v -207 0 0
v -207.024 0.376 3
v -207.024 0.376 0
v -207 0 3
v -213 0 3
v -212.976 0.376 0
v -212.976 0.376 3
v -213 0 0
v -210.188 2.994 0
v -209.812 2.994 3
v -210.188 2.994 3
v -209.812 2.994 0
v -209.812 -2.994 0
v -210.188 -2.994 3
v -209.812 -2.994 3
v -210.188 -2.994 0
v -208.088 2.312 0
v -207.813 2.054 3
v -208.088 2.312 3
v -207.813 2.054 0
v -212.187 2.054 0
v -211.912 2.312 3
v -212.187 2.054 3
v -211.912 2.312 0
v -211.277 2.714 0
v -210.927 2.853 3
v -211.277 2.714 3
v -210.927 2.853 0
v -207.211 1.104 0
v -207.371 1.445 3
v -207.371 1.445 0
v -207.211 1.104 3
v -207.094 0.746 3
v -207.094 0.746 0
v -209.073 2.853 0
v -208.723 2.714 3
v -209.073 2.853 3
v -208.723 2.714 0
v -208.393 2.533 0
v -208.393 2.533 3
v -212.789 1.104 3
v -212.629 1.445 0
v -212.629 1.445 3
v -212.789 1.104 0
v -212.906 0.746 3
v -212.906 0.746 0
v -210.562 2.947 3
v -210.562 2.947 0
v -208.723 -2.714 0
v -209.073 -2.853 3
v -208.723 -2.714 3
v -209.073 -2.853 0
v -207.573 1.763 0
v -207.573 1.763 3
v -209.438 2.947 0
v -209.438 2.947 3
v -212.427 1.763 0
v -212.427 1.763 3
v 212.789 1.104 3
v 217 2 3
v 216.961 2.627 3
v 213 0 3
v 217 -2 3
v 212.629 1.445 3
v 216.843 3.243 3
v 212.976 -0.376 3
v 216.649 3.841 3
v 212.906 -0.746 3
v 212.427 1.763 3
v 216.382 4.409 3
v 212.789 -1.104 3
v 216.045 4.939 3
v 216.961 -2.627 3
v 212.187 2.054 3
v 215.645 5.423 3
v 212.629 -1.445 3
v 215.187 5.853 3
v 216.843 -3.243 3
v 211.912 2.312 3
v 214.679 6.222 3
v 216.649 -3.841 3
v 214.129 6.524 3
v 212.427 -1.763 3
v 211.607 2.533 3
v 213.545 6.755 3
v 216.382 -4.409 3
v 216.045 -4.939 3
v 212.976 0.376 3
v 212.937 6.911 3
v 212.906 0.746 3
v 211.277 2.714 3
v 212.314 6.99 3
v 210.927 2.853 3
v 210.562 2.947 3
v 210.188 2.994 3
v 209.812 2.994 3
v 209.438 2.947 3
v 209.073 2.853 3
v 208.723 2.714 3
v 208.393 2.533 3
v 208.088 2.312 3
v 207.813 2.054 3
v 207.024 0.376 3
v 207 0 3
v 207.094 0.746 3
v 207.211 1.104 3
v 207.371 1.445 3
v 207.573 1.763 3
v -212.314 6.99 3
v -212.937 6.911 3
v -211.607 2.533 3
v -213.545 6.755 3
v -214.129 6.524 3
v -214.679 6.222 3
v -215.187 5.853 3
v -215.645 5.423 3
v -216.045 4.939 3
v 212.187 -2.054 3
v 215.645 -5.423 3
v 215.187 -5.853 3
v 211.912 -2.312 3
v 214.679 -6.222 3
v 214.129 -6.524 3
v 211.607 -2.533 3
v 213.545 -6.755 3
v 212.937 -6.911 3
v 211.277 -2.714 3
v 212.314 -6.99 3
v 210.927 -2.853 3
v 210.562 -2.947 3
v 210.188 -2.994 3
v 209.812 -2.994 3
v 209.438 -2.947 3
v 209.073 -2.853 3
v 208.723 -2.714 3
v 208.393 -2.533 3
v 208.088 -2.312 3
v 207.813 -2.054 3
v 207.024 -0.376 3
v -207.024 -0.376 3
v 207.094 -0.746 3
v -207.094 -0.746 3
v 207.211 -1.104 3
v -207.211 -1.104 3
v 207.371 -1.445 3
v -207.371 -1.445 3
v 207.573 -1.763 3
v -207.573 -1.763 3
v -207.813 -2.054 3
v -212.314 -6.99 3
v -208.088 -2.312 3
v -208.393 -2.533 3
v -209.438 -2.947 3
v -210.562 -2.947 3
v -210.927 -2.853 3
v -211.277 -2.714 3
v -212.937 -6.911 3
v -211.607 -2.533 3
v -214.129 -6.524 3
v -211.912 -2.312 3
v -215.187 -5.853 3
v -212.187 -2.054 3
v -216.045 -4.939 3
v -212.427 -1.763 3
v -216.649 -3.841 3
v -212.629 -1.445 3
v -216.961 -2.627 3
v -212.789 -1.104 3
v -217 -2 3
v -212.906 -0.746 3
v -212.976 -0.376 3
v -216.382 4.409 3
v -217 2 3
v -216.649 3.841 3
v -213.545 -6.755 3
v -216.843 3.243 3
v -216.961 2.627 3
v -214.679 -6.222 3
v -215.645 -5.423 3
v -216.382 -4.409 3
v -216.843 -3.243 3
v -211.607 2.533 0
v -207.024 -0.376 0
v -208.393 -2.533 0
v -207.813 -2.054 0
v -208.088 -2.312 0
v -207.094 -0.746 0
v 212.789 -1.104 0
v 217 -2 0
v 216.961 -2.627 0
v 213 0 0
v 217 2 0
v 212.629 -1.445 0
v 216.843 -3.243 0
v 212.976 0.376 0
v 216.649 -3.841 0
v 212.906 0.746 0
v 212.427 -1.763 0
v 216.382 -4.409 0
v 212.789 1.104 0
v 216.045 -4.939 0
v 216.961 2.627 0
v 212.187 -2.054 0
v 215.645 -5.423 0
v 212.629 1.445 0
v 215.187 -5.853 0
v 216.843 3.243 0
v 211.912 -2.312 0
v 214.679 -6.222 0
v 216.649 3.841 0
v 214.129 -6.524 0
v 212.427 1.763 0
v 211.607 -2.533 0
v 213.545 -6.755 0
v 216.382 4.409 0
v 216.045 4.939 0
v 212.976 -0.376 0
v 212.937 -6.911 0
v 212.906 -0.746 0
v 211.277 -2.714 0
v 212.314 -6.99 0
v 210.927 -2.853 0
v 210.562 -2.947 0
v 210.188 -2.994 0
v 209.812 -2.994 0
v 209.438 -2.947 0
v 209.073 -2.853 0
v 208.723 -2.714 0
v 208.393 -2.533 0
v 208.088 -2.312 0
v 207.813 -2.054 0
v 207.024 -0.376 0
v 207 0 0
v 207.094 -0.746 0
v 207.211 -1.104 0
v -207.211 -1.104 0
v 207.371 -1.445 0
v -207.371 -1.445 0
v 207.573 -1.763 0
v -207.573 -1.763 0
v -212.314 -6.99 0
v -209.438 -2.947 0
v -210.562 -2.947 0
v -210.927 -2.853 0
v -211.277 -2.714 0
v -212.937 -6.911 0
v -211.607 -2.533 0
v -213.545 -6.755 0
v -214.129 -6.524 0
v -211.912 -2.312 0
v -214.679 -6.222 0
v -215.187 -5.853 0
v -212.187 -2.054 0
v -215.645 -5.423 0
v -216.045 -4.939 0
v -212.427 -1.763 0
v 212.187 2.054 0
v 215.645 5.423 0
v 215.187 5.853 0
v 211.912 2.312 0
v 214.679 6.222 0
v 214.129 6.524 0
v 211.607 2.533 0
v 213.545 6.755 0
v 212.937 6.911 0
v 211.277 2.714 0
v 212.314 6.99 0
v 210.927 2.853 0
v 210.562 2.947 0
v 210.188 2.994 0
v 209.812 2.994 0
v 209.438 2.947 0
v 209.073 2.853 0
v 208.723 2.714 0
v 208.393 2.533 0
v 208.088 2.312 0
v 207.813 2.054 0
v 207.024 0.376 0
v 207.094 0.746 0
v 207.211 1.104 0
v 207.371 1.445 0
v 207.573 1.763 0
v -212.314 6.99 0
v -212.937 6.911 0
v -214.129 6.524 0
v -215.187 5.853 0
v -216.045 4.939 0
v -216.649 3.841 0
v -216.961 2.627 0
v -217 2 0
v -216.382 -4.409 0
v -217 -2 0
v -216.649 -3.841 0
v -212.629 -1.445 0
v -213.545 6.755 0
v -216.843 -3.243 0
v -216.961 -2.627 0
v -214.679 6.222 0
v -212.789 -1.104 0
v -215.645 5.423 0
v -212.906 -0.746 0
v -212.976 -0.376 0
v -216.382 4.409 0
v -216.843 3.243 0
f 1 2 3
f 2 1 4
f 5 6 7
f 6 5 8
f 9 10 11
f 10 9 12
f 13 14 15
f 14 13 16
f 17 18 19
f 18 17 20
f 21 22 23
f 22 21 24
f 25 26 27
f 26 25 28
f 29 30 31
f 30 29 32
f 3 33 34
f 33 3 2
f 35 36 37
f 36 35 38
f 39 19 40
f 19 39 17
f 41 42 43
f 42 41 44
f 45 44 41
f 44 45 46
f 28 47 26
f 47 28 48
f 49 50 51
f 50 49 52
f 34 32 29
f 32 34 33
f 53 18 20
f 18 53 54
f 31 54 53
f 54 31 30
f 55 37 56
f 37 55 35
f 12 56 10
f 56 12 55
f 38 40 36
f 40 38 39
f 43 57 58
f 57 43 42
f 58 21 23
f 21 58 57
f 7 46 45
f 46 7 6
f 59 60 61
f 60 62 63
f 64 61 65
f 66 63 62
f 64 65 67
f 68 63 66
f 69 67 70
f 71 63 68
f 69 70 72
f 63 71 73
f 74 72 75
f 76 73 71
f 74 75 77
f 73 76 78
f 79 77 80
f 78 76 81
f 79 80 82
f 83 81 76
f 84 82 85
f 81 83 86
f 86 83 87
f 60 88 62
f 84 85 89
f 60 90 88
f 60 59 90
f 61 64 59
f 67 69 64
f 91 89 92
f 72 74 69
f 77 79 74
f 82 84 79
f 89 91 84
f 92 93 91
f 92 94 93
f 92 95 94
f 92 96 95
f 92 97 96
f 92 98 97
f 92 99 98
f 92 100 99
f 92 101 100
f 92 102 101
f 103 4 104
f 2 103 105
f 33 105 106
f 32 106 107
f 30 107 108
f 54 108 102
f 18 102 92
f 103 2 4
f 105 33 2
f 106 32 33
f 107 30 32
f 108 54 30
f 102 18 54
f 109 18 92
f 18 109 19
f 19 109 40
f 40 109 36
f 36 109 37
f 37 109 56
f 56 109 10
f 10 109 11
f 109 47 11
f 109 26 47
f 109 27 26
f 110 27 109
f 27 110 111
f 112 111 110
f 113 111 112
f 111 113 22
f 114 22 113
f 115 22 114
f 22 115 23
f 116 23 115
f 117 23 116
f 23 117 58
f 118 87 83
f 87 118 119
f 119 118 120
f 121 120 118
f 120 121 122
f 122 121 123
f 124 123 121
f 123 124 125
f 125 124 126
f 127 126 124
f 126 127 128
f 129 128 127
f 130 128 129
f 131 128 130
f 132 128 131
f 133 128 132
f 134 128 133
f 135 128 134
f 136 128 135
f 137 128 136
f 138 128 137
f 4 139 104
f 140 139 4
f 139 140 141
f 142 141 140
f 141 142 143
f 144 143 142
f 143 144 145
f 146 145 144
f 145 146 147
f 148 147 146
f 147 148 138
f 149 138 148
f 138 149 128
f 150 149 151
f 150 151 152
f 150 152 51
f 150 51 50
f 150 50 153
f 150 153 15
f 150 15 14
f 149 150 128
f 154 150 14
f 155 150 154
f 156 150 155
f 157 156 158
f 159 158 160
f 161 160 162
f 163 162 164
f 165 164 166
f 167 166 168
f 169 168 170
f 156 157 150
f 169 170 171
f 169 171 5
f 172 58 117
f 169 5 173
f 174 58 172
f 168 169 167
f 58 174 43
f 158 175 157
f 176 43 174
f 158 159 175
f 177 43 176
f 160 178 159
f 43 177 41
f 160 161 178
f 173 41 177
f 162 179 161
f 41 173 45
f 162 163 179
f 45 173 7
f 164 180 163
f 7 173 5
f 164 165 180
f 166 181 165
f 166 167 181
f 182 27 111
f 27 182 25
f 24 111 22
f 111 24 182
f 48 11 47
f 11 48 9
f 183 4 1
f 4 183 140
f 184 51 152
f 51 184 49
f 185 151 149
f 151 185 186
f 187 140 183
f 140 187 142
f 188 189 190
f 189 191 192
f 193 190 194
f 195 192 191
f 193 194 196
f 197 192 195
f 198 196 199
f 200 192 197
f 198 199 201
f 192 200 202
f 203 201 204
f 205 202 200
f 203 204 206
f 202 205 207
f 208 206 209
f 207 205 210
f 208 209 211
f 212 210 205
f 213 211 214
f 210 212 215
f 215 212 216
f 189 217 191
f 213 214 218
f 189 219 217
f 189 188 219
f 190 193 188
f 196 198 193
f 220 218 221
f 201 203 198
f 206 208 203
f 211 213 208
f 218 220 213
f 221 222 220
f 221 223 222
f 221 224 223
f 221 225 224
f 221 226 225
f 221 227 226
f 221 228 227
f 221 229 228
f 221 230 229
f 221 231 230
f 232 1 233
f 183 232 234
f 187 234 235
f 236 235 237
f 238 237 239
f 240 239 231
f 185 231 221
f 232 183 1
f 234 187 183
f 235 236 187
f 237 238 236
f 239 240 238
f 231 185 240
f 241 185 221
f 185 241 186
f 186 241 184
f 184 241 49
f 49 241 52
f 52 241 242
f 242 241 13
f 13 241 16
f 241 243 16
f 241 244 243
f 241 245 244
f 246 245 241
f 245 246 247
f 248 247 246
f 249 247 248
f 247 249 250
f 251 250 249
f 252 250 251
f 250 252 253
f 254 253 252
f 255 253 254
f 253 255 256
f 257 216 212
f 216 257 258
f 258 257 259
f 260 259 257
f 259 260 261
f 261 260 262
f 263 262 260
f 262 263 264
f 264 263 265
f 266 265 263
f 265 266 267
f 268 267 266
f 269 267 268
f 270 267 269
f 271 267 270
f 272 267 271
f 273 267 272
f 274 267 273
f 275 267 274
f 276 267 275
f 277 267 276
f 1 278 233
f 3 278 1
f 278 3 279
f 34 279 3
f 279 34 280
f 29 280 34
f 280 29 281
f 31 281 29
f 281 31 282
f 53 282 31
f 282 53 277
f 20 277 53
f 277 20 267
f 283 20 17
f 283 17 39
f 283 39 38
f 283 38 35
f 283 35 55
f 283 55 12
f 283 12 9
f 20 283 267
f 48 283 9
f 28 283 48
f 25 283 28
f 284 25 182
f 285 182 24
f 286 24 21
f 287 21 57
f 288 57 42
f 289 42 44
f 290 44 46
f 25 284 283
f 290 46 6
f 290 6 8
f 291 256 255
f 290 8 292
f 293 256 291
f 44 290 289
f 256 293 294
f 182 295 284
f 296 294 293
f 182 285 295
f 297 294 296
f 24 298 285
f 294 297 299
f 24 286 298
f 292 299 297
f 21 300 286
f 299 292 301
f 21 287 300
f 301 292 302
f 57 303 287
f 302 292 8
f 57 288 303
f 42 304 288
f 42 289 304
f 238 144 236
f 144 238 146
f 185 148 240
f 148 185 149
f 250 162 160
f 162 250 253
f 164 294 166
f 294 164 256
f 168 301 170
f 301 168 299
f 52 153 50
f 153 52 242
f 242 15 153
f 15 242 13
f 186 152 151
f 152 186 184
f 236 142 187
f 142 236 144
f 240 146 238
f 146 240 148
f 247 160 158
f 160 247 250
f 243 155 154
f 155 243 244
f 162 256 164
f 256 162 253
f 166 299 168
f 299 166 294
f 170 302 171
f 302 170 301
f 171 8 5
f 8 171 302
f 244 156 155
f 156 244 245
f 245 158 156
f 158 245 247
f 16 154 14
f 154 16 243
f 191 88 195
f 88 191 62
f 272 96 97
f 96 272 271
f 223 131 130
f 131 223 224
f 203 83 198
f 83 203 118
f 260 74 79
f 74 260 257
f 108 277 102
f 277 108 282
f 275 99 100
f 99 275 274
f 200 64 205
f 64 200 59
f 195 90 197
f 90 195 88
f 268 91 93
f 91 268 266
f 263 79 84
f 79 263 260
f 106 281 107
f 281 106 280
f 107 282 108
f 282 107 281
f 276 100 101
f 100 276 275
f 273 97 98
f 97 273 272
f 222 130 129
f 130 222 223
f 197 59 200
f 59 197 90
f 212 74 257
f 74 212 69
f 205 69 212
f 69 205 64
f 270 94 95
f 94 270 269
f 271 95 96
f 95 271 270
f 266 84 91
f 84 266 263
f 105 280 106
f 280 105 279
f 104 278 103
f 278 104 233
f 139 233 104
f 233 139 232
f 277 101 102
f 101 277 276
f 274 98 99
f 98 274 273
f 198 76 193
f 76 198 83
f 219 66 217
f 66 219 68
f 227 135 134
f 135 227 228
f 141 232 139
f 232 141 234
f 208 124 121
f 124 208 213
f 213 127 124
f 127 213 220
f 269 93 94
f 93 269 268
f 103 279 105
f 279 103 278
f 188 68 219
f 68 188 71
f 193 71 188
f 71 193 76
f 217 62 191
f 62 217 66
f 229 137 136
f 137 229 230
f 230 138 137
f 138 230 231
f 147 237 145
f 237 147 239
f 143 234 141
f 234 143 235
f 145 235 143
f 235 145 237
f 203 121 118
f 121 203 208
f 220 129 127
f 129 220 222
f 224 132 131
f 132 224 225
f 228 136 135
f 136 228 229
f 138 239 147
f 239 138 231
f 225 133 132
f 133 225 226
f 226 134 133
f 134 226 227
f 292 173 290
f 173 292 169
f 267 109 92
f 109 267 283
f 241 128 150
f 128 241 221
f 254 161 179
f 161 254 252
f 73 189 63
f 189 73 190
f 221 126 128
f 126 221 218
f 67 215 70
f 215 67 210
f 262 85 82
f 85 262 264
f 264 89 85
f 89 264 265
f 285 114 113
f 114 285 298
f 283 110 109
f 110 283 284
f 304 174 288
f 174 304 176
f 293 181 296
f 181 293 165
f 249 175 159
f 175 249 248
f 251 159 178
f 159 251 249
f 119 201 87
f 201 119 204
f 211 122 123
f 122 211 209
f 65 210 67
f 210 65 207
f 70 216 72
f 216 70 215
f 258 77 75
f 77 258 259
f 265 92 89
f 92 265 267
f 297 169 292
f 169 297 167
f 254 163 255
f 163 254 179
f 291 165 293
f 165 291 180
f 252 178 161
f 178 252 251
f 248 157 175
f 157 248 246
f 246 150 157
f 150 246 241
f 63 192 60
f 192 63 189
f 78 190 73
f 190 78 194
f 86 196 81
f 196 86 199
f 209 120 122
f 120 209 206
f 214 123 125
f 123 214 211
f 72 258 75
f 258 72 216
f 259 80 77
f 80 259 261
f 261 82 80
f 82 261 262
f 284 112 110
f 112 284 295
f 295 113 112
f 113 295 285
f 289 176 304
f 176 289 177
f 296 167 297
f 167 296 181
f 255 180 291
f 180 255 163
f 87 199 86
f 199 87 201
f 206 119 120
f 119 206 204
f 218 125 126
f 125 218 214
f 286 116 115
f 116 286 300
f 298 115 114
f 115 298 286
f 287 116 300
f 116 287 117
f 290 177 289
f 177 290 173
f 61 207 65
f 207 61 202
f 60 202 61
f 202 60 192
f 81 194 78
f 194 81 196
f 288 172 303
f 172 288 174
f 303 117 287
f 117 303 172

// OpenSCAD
$fn = 50;


difference() {
	union() {
		hull() {
			translate(v = [-212.0000000000, 2.0000000000, 0]) {
				cylinder(h = 3, r = 5);
			}
			translate(v = [212.0000000000, 2.0000000000, 0]) {
				cylinder(h = 3, r = 5);
			}
			translate(v = [-212.0000000000, -2.0000000000, 0]) {
				cylinder(h = 3, r = 5);
			}
			translate(v = [212.0000000000, -2.0000000000, 0]) {
				cylinder(h = 3, r = 5);
			}
		}
	}
	union() {
		translate(v = [-210.0000000000, 0.0000000000, 0]) {
			cylinder(h = 3, r = 3.0000000000);
		}
		translate(v = [210.0000000000, 0.0000000000, 0]) {
			cylinder(h = 3, r = 3.0000000000);
		}
		translate(v = [-210.0000000000, 0.0000000000, 0]) {
			cylinder(h = 3, r = 1.5000000000);
		}
		translate(v = [210.0000000000, 0.0000000000, 0]) {
			cylinder(h = 3, r = 1.5000000000);
		}
		translate(v = [-210.0000000000, 0.0000000000, 0]) {
			cylinder(h = 3, r = 1.5000000000);
		}
		translate(v = [210.0000000000, 0.0000000000, 0]) {
			cylinder(h = 3, r = 1.5000000000);
		}
		translate(v = [-210.0000000000, 0.0000000000, 0]) {
			cylinder(h = 3, r = 1.5000000000);
		}
		translate(v = [210.0000000000, 0.0000000000, 0]) {
			cylinder(h = 3, r = 1.5000000000);
		}
	}
}
